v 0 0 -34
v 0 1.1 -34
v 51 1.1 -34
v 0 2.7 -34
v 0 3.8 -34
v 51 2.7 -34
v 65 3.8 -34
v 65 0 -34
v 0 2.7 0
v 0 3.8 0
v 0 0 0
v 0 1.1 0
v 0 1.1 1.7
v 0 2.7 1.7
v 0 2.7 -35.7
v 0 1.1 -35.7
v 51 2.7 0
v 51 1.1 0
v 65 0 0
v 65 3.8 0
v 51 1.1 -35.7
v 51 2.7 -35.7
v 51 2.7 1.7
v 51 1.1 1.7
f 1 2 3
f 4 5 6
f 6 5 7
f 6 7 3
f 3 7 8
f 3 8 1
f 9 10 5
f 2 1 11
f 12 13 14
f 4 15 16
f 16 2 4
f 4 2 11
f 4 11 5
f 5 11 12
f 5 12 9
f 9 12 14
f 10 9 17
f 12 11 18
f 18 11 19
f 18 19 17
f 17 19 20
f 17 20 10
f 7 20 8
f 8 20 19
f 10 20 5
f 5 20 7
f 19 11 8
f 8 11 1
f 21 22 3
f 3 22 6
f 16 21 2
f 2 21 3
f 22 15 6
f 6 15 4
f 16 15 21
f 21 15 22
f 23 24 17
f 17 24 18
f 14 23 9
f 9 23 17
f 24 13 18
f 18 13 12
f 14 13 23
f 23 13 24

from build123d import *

# Parameters (mm, degrees)
SKETCH_1_W      = 65
SKETCH_1_H      = 34
EXTRUDE_1_DEPTH = 3.8
SKETCH_2_W      = 51
SKETCH_2_H      = 1.6
EXTRUDE_2_DEPTH = 1.7


with BuildPart() as part:
    # 草图1 → 凸台-拉伸1 (new body)
    with BuildSketch(Plane(origin=(0, 0, 0), x_dir=(1, 0, 0), z_dir=(0, 1, 0))):
        with Locations((32.5, 17)):
            Rectangle(SKETCH_1_W, SKETCH_1_H)
    extrude(amount=EXTRUDE_1_DEPTH)

    # 草图2 → 凸台-拉伸2 (add)
    with BuildSketch(Plane(origin=(0, 0, -34), x_dir=(-1, 0, 0), z_dir=(0, 0, -1))):
        with Locations((-25.5, 1.9)):
            Rectangle(SKETCH_2_W, SKETCH_2_H)
    extrude_2 = extrude(amount=EXTRUDE_2_DEPTH)

    # 镜向1: 凸台-拉伸2 across plane
    add(extrude_2.mirror(Plane.XY.offset(-17)))


solid = part.part
